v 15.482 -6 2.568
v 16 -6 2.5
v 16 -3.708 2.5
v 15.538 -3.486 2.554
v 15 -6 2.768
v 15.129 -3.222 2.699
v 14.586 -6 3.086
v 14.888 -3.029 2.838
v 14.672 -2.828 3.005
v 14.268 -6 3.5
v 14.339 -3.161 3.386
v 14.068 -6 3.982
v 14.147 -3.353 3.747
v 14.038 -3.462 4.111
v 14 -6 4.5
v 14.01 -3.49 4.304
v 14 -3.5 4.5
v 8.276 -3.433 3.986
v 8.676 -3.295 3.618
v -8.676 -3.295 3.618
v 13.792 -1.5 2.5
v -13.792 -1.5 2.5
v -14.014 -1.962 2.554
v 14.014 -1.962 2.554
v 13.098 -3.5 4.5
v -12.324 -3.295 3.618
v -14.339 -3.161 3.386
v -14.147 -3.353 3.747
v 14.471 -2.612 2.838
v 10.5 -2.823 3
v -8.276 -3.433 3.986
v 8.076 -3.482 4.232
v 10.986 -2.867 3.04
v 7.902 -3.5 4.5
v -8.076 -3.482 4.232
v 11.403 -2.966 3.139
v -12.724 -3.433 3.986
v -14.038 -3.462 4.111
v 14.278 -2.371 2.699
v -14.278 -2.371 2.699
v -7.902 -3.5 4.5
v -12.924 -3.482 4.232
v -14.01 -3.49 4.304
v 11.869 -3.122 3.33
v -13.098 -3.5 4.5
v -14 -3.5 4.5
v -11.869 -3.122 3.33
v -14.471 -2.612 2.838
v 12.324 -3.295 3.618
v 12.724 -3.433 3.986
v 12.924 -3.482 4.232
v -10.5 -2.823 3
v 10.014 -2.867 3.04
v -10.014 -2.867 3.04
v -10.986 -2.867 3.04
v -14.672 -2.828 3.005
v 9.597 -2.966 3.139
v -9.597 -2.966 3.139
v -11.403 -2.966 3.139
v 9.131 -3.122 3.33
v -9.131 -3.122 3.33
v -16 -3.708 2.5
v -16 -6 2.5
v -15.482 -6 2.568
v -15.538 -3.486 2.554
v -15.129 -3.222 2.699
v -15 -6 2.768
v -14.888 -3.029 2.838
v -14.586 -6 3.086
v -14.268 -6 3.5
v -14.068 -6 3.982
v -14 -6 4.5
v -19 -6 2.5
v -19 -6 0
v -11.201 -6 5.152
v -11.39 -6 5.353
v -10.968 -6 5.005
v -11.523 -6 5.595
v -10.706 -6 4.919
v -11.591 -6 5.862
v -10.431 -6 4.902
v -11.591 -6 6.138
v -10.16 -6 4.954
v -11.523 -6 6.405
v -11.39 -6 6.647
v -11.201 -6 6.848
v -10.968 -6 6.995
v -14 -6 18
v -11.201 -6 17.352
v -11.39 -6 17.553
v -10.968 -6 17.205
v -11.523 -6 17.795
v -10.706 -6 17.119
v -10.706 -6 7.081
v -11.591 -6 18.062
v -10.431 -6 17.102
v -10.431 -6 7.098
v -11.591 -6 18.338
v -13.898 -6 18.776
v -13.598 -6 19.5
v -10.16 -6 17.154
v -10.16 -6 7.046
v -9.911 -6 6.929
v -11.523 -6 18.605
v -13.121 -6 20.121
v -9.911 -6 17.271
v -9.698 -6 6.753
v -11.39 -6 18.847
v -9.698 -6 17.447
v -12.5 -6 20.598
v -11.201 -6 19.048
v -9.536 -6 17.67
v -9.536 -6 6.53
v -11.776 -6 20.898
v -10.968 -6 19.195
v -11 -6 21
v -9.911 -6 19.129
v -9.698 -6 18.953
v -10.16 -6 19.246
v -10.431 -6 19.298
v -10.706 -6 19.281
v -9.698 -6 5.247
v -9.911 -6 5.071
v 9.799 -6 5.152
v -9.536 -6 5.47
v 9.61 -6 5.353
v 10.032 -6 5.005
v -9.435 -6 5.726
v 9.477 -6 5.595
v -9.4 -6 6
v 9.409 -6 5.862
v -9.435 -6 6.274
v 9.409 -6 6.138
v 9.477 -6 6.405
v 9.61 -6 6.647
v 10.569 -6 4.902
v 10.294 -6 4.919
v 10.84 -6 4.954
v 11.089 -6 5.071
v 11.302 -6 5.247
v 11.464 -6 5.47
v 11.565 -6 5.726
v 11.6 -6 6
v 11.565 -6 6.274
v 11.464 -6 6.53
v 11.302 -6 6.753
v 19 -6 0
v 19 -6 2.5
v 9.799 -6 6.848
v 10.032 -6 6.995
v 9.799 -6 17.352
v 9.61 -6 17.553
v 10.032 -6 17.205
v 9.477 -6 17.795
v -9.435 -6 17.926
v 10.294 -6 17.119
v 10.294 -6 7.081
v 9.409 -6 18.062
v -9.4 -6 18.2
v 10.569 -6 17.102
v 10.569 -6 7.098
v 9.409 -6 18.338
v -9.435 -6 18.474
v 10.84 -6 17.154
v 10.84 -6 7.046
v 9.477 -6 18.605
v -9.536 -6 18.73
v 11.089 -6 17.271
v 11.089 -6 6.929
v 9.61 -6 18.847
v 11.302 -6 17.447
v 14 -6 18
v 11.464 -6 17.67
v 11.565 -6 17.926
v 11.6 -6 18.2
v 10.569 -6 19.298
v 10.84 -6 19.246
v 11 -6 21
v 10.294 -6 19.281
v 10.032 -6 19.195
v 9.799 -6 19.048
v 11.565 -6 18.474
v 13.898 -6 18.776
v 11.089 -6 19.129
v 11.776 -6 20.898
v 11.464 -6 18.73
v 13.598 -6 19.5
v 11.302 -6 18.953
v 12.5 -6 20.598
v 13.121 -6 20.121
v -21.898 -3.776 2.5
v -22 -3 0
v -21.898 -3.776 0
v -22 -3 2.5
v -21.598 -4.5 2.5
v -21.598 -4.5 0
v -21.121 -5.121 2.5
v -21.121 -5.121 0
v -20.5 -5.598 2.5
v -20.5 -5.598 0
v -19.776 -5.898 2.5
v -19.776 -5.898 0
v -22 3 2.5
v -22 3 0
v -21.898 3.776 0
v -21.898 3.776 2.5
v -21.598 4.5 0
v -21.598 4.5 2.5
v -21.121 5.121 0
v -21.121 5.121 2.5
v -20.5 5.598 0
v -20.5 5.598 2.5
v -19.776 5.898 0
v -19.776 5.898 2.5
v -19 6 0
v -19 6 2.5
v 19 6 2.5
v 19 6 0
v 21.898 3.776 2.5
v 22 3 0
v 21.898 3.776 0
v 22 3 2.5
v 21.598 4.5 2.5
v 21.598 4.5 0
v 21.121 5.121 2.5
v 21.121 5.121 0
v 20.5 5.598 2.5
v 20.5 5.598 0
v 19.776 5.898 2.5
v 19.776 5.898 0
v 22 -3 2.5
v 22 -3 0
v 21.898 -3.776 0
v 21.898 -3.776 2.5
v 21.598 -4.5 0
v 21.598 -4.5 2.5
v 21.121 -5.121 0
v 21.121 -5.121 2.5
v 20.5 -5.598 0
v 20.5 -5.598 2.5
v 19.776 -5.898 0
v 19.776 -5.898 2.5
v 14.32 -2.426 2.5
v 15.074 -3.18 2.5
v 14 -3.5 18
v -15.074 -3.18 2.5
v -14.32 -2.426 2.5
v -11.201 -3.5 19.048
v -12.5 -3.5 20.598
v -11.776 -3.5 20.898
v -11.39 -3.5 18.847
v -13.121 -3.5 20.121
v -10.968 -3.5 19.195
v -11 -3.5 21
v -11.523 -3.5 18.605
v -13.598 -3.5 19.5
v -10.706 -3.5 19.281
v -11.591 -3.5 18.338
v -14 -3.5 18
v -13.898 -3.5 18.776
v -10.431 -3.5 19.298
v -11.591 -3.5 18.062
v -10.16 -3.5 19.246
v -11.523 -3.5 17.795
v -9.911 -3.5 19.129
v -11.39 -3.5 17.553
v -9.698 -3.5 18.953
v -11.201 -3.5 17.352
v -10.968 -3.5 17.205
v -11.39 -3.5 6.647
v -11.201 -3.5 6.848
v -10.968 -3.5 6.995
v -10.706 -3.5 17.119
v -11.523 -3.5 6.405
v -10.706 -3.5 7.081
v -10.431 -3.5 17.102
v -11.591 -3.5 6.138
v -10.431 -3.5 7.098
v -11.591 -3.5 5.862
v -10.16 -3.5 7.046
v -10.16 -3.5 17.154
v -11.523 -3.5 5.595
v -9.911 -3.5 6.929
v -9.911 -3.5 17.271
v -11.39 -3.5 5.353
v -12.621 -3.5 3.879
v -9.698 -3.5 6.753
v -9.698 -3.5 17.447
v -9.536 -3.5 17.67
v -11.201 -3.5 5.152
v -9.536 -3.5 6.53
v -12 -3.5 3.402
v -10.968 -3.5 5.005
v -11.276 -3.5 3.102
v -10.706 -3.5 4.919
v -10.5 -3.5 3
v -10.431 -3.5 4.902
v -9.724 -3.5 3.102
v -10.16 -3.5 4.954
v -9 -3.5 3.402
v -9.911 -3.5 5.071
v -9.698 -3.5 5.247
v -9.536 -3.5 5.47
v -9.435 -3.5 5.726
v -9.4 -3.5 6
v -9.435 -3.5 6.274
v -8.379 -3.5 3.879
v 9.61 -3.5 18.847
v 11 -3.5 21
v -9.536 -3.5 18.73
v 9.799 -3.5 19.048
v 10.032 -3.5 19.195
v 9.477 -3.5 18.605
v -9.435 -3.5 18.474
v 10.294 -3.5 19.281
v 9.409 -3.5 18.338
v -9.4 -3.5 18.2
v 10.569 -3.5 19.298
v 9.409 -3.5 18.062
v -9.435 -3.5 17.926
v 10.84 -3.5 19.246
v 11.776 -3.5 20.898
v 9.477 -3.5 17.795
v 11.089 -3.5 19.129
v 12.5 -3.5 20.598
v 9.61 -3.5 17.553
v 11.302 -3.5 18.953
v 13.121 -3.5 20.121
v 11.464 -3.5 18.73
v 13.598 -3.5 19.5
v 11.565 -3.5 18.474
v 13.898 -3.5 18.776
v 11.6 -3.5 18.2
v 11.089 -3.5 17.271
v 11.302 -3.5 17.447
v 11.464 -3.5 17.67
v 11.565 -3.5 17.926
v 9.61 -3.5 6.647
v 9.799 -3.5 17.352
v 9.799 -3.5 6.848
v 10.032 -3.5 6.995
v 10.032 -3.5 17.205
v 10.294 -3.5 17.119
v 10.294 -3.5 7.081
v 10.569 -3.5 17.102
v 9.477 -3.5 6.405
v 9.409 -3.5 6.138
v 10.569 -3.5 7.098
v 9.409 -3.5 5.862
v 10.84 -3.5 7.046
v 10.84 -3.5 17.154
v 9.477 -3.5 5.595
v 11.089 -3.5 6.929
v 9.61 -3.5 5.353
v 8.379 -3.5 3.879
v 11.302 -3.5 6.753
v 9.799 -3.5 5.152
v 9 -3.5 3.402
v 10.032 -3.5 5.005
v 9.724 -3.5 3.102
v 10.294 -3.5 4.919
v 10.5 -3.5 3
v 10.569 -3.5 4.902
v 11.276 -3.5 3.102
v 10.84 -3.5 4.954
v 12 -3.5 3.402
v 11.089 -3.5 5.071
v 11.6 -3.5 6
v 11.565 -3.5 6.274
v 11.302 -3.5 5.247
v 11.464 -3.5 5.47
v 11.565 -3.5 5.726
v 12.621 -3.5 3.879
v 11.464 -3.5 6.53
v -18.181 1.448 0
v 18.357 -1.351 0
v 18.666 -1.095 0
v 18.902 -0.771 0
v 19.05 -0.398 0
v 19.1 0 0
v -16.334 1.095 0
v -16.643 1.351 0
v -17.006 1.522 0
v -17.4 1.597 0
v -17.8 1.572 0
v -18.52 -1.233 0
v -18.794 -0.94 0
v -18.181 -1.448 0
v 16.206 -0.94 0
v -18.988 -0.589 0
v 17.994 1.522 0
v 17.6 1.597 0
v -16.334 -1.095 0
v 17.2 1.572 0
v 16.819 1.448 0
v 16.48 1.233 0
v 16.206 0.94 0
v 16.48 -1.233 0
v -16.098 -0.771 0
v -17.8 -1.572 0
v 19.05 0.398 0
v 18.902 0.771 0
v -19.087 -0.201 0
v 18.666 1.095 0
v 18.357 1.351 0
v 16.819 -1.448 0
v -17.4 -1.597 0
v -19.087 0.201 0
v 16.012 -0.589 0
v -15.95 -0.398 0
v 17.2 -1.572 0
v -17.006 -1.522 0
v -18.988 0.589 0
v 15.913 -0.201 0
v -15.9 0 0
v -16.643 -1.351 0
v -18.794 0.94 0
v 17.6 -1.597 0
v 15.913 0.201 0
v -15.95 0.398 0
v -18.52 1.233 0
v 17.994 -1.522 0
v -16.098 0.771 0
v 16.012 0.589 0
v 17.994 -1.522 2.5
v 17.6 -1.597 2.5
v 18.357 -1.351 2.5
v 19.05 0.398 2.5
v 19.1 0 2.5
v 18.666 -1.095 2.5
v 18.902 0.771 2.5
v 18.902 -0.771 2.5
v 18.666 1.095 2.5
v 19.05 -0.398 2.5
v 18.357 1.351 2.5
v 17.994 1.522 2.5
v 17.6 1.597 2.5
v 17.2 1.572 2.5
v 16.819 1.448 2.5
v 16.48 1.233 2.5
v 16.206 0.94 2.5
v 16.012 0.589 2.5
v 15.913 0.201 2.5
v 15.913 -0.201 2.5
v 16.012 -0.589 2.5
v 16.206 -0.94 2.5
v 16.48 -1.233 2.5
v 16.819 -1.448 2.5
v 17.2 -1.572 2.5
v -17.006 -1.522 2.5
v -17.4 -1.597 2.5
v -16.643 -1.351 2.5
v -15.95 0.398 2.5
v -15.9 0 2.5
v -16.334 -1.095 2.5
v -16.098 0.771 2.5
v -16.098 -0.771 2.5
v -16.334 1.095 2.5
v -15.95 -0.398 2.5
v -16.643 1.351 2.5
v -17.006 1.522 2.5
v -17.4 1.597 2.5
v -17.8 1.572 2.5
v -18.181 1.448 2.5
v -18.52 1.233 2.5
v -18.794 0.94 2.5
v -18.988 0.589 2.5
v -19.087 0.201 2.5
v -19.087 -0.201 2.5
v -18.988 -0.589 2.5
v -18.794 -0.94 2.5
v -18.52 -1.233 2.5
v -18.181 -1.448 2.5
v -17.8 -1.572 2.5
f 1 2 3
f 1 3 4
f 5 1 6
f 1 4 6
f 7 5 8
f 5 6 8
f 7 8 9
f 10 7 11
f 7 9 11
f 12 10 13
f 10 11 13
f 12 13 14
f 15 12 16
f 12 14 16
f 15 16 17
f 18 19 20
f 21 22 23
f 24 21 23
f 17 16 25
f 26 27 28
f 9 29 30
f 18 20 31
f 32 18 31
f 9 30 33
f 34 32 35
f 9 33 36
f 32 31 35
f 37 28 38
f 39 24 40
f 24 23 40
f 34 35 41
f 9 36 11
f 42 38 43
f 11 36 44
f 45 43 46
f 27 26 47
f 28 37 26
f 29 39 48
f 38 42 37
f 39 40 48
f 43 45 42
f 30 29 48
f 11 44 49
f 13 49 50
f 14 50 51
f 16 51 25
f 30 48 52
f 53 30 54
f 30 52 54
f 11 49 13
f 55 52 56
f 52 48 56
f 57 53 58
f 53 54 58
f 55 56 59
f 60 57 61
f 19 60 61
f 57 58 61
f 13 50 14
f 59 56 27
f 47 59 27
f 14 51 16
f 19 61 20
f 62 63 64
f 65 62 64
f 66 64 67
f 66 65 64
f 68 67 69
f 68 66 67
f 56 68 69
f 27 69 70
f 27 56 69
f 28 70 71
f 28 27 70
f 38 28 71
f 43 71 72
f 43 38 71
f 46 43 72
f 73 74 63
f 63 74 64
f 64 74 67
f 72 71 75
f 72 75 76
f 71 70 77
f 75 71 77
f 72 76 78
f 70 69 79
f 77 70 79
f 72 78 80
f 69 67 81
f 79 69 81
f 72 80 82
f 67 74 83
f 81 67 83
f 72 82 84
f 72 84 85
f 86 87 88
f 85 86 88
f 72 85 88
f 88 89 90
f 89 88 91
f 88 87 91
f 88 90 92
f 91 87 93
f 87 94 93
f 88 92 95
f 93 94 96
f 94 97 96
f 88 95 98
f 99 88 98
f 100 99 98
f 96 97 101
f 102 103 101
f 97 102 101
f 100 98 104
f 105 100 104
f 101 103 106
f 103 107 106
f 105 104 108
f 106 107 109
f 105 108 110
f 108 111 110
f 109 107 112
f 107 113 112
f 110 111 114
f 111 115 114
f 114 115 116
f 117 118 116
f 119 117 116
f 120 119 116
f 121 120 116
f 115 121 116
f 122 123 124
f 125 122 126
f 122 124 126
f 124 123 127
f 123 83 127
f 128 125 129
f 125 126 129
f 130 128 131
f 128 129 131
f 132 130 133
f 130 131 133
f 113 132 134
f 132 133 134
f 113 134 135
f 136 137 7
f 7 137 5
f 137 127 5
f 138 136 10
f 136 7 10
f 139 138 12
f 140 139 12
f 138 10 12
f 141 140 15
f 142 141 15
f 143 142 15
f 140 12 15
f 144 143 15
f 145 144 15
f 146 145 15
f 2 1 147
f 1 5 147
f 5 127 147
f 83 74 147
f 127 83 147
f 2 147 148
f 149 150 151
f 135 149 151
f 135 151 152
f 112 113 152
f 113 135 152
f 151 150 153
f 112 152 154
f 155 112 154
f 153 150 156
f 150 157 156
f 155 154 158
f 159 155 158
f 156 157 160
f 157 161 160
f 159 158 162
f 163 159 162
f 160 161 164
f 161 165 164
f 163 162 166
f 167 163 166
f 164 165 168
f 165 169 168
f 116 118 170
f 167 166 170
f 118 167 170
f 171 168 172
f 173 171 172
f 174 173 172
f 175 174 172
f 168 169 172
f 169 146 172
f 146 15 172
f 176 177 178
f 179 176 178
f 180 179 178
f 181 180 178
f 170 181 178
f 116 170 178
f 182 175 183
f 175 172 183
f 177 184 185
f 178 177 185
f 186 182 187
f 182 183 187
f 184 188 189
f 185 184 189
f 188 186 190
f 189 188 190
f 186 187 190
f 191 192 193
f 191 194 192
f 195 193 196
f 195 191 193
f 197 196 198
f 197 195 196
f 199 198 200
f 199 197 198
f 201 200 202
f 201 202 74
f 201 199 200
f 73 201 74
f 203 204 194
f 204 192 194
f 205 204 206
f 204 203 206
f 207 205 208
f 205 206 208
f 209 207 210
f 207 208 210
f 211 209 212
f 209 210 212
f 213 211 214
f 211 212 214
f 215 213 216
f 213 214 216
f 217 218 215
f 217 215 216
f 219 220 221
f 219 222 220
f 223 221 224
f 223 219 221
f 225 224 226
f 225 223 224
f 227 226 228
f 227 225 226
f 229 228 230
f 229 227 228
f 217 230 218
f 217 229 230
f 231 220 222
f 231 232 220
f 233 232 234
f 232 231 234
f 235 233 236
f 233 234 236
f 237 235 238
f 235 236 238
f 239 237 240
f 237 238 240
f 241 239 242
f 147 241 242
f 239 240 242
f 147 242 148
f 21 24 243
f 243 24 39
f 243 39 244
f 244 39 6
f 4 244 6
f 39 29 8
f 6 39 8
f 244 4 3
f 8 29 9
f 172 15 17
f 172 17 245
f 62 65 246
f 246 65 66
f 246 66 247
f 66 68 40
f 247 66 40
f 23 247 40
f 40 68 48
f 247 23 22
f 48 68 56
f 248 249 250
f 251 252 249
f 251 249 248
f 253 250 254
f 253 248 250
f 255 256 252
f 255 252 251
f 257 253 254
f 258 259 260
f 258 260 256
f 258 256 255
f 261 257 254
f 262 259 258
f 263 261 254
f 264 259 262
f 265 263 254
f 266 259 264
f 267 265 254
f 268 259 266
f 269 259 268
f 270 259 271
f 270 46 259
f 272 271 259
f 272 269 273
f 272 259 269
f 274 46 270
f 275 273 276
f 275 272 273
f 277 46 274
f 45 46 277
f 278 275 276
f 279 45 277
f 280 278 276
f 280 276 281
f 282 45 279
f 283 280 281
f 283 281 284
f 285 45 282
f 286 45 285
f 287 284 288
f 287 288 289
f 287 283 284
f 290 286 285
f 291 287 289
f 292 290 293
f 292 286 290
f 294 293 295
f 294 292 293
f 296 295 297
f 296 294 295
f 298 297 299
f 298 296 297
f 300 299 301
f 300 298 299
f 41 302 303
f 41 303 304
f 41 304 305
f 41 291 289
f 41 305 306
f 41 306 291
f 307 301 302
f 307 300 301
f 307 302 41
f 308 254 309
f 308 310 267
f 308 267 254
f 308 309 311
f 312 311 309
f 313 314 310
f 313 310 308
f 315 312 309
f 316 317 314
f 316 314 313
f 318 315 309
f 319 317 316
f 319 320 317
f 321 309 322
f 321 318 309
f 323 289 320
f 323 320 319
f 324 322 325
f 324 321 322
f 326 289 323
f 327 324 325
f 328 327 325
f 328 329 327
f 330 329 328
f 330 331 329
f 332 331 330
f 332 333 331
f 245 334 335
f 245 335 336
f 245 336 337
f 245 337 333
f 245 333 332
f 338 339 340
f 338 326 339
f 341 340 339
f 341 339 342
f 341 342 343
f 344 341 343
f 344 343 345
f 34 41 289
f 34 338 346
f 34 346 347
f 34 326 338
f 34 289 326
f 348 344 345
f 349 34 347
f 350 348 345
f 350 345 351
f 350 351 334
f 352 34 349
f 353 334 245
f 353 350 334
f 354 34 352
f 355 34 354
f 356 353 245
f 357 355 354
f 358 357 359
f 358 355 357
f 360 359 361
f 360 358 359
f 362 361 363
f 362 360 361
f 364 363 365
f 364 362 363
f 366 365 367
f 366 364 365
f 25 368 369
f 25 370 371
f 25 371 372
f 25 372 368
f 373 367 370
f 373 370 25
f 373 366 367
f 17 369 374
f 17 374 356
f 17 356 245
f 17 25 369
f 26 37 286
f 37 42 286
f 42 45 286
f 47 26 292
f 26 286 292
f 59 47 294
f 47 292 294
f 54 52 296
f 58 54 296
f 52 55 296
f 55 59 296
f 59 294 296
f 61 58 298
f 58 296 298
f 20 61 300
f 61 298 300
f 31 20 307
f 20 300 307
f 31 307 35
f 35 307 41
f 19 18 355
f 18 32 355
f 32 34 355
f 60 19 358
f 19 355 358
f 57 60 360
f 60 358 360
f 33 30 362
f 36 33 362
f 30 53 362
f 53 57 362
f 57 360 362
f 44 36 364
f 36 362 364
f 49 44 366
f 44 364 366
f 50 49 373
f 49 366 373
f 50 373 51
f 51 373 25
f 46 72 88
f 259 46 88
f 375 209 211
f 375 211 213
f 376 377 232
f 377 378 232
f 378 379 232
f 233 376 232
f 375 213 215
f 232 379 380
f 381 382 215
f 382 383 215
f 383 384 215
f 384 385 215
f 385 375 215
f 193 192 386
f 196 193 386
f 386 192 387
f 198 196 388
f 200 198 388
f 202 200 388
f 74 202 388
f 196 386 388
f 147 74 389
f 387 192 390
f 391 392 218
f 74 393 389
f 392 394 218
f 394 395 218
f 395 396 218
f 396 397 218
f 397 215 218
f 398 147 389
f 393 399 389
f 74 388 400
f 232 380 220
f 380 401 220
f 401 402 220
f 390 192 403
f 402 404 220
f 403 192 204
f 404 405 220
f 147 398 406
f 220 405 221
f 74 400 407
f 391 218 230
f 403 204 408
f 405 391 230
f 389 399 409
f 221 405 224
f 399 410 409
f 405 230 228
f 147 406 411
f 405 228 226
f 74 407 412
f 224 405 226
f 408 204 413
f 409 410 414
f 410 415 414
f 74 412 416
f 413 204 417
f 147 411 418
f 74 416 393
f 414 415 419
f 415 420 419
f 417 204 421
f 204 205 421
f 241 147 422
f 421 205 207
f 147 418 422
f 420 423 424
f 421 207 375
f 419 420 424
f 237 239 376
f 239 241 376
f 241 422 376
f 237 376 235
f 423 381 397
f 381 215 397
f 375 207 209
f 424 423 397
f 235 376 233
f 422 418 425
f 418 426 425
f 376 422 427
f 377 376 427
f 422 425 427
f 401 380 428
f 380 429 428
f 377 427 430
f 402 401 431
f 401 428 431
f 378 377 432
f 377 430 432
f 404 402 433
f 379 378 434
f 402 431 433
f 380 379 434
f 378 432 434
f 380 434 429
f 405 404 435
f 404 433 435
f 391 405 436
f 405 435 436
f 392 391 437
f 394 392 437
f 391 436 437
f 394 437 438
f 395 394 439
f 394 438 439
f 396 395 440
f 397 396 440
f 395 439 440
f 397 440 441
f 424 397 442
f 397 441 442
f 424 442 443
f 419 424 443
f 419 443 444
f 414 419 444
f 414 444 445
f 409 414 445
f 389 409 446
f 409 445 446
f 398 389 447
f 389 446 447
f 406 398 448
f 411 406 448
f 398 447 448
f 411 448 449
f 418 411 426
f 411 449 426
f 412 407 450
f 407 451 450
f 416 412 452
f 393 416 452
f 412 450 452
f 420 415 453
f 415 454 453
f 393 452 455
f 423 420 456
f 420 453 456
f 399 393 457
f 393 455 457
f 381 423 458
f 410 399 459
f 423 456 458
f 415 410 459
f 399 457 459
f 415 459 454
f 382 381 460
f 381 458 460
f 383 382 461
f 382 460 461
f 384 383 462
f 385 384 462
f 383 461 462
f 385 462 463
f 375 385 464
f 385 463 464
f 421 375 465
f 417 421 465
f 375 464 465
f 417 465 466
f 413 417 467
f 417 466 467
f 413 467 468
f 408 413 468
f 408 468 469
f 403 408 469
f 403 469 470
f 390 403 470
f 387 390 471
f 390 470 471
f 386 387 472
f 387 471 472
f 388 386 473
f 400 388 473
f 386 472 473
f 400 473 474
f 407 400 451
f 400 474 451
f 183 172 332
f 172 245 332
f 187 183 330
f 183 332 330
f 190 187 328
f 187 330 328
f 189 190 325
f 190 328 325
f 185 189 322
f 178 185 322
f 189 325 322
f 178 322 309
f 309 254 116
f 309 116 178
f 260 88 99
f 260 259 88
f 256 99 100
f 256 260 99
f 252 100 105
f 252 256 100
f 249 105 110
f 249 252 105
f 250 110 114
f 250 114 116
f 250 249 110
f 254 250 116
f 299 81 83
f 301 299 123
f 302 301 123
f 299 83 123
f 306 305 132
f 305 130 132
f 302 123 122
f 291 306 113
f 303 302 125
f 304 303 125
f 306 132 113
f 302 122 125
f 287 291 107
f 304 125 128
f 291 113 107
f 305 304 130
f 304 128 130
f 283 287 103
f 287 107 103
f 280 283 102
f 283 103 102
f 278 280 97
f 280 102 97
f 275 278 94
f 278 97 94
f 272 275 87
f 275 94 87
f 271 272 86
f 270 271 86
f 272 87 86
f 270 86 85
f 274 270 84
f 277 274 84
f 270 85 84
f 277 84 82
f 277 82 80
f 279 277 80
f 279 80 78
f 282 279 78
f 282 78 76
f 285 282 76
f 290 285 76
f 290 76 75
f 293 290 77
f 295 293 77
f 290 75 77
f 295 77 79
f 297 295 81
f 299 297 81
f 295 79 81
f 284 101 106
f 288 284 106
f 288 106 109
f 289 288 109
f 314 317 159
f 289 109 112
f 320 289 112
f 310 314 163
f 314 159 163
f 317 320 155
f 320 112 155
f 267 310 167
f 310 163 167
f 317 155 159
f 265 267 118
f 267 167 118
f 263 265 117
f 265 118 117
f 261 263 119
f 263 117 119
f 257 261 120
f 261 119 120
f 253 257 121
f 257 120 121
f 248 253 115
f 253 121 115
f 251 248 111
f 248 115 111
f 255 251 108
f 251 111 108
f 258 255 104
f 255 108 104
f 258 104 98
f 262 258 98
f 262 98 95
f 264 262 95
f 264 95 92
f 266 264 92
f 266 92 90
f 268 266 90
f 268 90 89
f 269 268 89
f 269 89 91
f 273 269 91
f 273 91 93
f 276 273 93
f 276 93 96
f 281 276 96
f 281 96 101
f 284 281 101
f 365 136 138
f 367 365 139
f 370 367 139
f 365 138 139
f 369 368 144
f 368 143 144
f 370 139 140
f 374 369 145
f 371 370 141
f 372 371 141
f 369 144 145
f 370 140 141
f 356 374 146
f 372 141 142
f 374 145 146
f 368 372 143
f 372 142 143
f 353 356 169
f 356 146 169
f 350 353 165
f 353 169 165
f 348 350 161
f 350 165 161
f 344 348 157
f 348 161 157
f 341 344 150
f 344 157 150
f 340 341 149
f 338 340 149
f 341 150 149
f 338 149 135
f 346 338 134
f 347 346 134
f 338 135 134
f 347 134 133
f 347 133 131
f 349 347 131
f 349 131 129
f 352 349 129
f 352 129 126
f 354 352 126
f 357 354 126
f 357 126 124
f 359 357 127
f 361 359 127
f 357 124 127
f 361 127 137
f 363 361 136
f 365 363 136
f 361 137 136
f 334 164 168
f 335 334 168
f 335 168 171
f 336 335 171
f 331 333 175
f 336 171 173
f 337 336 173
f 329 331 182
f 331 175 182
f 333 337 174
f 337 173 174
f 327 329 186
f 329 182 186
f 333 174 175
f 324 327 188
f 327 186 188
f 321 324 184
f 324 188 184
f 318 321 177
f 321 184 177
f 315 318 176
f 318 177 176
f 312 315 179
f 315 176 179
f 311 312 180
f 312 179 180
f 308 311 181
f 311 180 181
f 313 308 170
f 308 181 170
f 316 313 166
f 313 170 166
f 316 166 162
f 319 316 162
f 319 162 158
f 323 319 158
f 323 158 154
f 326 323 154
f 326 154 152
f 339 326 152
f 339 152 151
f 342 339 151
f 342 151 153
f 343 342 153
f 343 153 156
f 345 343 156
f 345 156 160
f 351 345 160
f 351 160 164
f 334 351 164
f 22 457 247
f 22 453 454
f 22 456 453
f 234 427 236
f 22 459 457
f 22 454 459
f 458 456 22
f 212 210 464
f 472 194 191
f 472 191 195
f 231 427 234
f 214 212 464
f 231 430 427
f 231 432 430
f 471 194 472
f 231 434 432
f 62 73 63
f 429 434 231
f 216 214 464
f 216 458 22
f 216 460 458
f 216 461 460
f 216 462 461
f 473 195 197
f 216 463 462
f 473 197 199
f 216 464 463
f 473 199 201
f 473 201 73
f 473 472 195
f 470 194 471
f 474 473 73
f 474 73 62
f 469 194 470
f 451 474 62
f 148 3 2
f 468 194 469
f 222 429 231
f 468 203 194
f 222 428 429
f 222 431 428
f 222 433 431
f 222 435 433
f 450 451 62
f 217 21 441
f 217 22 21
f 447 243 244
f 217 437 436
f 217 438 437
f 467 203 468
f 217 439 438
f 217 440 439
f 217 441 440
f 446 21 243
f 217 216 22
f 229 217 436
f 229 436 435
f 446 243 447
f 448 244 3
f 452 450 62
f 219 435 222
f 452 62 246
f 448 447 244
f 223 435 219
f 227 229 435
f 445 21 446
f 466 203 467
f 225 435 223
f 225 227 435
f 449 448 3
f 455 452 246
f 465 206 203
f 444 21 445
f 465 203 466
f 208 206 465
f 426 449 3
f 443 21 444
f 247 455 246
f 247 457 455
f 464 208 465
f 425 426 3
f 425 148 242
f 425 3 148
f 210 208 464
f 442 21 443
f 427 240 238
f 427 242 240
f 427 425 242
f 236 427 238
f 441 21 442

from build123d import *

# Parameters (mm, degrees)
CYLINDER004_R          = 4
CYLINDER004_DEPTH      = 5
ARRAY004_X_COUNT       = 2
ARRAY004_X_PITCH       = 35
CYLINDER003_R          = 3
CYLINDER003_DEPTH      = 10
CYLINDER003_ROLL_ANGLE = 90
ARRAY003_X_COUNT       = 2
ARRAY003_X_PITCH       = 21
CYLINDER001_R          = 1.1
CYLINDER001_DEPTH      = 50
CYLINDER001_ROLL_ANGLE = 90
ARRAY001_X_COUNT       = 2
ARRAY001_X_PITCH       = 21
ARRAY001_Z_COUNT       = 2
ARRAY001_Z_PITCH       = 12.2
CYLINDER002_R          = 1.6
CYLINDER002_DEPTH      = 10
ARRAY002_X_COUNT       = 2
ARRAY002_X_PITCH       = 35
BOX001_W               = 28
BOX001_H               = 2.5
BOX001_DEPTH           = 21
FILLET001_R            = 3
BOX002_W               = 44
BOX002_H               = 12
BOX002_DEPTH           = 2.5
FILLET_R               = 3
FILLET002_R            = 2


with BuildPart() as array004:
    # Cylinder004 → Cylinder004 (new body)
    with BuildSketch(Plane(origin=(-17.5, 0, 2.5), x_dir=(1, 0, 0), z_dir=(0, 0, 1))):
        Circle(CYLINDER004_R)
    extrude(amount=CYLINDER004_DEPTH)

    # Array004 X: Array004 ×2


with BuildPart() as array004_1:
    add(array004.part)
    with Locations(*[(i * ARRAY004_X_PITCH, 0, 0) for i in range(1, ARRAY004_X_COUNT)]):
        add(array004.part)


with BuildPart() as array003:
    # Cylinder003 → Cylinder003 (new body)
    with BuildSketch(Plane.XY):
        Circle(CYLINDER003_R)
    extrude(amount=CYLINDER003_DEPTH)


with BuildPart() as array003_1:
    # Cylinder003 roll: moved
    add(array003.part.rotate(Axis((0, 0, 0), (1, 0, 0)), CYLINDER003_ROLL_ANGLE))


with BuildPart() as array003_2:
    # Cylinder003 placement: moved
    add(array003_1.part.moved(Location((-10.5, 6.5, 6))))

    # Array003 X: Array003 ×2


with BuildPart() as array003_3:
    add(array003_2.part)
    with Locations(*[(i * ARRAY003_X_PITCH, 0, 0) for i in range(1, ARRAY003_X_COUNT)]):
        add(array003_2.part)


with BuildPart() as array001:
    # Cylinder001 → Cylinder001 (new body)
    with BuildSketch(Plane.XY):
        Circle(CYLINDER001_R)
    extrude(amount=CYLINDER001_DEPTH)


with BuildPart() as array001_1:
    # Cylinder001 roll: moved
    add(array001.part.rotate(Axis((0, 0, 0), (1, 0, 0)), CYLINDER001_ROLL_ANGLE))


with BuildPart() as array001_2:
    # Cylinder001 placement: moved
    add(array001_1.part.moved(Location((-10.5, 20, 6))))

    # Array001 X: Array001 ×2


with BuildPart() as array001_3:
    add(array001_2.part)
    with Locations(*[(i * ARRAY001_X_PITCH, 0, 0) for i in range(1, ARRAY001_X_COUNT)]):
        add(array001_2.part)

    # Array001 Z: Array001 ×2


with BuildPart() as array001_4:
    add(array001_3.part)
    with Locations(*[(0, 0, i * ARRAY001_Z_PITCH) for i in range(1, ARRAY001_Z_COUNT)]):
        add(array001_3.part)


with BuildPart() as fusion001:
    # Cylinder002 → Cylinder002 (new body)
    with BuildSketch(Plane(origin=(-17.5, 0, -1), x_dir=(1, 0, 0), z_dir=(0, 0, 1))):
        Circle(CYLINDER002_R)
    extrude(amount=CYLINDER002_DEPTH)

    # Array002 X: Fusion001 ×2


with BuildPart() as fusion001_1:
    add(fusion001.part)
    with Locations(*[(i * ARRAY002_X_PITCH, 0, 0) for i in range(1, ARRAY002_X_COUNT)]):
        add(fusion001.part)

    # Fusion001: union Array001
    add(array001_4.part)


with BuildPart() as fillet001:
    # Box001 → Box001 (new body)
    with BuildSketch(Plane(origin=(-14, -6, 0), x_dir=(1, 0, 0), z_dir=(0, 0, 1))):
        with Locations((14, 1.25)):
            Rectangle(BOX001_W, BOX001_H)
    extrude(amount=BOX001_DEPTH)

    # Fillet001
    fillet001_edges = [fillet001.edges().sort_by_distance(p)[0] for p in [
        (-14, -4.75, 21),
        (14, -4.75, 21),
    ]]
    fillet(fillet001_edges, radius=FILLET001_R)


with BuildPart() as cut002006002006:
    # Box002 → Box002 (new body)
    with BuildSketch(Plane(origin=(-22, -6, 0), x_dir=(1, 0, 0), z_dir=(0, 0, 1))):
        with Locations((22, 6)):
            Rectangle(BOX002_W, BOX002_H)
    extrude(amount=BOX002_DEPTH)

    # Fillet
    fillet_edges = [cut002006002006.edges().sort_by_distance(p)[0] for p in [
        (-22, -6, 1.25),
        (-22, 6, 1.25),
        (22, -6, 1.25),
        (22, 6, 1.25),
    ]]
    fillet(fillet_edges, radius=FILLET_R)

    # Fusion: union Fillet001
    add(fillet001.part)

    # Fillet002
    fillet002_edges = [cut002006002006.edges().sort_by_distance(p)[0] for p in [
        (14, -4.75, 2.5),
        (0, -3.5, 2.5),
        (-14, -4.75, 2.5),
    ]]
    fillet(fillet002_edges, radius=FILLET002_R)

    # Cut002006002004: cut Fusion001
    add(fusion001_1.part, mode=Mode.SUBTRACT)

    # Cut002006002005: cut Array003
    add(array003_3.part, mode=Mode.SUBTRACT)

    # Cut002006002006: cut Array004
    add(array004_1.part, mode=Mode.SUBTRACT)


solid = cut002006002006.part
